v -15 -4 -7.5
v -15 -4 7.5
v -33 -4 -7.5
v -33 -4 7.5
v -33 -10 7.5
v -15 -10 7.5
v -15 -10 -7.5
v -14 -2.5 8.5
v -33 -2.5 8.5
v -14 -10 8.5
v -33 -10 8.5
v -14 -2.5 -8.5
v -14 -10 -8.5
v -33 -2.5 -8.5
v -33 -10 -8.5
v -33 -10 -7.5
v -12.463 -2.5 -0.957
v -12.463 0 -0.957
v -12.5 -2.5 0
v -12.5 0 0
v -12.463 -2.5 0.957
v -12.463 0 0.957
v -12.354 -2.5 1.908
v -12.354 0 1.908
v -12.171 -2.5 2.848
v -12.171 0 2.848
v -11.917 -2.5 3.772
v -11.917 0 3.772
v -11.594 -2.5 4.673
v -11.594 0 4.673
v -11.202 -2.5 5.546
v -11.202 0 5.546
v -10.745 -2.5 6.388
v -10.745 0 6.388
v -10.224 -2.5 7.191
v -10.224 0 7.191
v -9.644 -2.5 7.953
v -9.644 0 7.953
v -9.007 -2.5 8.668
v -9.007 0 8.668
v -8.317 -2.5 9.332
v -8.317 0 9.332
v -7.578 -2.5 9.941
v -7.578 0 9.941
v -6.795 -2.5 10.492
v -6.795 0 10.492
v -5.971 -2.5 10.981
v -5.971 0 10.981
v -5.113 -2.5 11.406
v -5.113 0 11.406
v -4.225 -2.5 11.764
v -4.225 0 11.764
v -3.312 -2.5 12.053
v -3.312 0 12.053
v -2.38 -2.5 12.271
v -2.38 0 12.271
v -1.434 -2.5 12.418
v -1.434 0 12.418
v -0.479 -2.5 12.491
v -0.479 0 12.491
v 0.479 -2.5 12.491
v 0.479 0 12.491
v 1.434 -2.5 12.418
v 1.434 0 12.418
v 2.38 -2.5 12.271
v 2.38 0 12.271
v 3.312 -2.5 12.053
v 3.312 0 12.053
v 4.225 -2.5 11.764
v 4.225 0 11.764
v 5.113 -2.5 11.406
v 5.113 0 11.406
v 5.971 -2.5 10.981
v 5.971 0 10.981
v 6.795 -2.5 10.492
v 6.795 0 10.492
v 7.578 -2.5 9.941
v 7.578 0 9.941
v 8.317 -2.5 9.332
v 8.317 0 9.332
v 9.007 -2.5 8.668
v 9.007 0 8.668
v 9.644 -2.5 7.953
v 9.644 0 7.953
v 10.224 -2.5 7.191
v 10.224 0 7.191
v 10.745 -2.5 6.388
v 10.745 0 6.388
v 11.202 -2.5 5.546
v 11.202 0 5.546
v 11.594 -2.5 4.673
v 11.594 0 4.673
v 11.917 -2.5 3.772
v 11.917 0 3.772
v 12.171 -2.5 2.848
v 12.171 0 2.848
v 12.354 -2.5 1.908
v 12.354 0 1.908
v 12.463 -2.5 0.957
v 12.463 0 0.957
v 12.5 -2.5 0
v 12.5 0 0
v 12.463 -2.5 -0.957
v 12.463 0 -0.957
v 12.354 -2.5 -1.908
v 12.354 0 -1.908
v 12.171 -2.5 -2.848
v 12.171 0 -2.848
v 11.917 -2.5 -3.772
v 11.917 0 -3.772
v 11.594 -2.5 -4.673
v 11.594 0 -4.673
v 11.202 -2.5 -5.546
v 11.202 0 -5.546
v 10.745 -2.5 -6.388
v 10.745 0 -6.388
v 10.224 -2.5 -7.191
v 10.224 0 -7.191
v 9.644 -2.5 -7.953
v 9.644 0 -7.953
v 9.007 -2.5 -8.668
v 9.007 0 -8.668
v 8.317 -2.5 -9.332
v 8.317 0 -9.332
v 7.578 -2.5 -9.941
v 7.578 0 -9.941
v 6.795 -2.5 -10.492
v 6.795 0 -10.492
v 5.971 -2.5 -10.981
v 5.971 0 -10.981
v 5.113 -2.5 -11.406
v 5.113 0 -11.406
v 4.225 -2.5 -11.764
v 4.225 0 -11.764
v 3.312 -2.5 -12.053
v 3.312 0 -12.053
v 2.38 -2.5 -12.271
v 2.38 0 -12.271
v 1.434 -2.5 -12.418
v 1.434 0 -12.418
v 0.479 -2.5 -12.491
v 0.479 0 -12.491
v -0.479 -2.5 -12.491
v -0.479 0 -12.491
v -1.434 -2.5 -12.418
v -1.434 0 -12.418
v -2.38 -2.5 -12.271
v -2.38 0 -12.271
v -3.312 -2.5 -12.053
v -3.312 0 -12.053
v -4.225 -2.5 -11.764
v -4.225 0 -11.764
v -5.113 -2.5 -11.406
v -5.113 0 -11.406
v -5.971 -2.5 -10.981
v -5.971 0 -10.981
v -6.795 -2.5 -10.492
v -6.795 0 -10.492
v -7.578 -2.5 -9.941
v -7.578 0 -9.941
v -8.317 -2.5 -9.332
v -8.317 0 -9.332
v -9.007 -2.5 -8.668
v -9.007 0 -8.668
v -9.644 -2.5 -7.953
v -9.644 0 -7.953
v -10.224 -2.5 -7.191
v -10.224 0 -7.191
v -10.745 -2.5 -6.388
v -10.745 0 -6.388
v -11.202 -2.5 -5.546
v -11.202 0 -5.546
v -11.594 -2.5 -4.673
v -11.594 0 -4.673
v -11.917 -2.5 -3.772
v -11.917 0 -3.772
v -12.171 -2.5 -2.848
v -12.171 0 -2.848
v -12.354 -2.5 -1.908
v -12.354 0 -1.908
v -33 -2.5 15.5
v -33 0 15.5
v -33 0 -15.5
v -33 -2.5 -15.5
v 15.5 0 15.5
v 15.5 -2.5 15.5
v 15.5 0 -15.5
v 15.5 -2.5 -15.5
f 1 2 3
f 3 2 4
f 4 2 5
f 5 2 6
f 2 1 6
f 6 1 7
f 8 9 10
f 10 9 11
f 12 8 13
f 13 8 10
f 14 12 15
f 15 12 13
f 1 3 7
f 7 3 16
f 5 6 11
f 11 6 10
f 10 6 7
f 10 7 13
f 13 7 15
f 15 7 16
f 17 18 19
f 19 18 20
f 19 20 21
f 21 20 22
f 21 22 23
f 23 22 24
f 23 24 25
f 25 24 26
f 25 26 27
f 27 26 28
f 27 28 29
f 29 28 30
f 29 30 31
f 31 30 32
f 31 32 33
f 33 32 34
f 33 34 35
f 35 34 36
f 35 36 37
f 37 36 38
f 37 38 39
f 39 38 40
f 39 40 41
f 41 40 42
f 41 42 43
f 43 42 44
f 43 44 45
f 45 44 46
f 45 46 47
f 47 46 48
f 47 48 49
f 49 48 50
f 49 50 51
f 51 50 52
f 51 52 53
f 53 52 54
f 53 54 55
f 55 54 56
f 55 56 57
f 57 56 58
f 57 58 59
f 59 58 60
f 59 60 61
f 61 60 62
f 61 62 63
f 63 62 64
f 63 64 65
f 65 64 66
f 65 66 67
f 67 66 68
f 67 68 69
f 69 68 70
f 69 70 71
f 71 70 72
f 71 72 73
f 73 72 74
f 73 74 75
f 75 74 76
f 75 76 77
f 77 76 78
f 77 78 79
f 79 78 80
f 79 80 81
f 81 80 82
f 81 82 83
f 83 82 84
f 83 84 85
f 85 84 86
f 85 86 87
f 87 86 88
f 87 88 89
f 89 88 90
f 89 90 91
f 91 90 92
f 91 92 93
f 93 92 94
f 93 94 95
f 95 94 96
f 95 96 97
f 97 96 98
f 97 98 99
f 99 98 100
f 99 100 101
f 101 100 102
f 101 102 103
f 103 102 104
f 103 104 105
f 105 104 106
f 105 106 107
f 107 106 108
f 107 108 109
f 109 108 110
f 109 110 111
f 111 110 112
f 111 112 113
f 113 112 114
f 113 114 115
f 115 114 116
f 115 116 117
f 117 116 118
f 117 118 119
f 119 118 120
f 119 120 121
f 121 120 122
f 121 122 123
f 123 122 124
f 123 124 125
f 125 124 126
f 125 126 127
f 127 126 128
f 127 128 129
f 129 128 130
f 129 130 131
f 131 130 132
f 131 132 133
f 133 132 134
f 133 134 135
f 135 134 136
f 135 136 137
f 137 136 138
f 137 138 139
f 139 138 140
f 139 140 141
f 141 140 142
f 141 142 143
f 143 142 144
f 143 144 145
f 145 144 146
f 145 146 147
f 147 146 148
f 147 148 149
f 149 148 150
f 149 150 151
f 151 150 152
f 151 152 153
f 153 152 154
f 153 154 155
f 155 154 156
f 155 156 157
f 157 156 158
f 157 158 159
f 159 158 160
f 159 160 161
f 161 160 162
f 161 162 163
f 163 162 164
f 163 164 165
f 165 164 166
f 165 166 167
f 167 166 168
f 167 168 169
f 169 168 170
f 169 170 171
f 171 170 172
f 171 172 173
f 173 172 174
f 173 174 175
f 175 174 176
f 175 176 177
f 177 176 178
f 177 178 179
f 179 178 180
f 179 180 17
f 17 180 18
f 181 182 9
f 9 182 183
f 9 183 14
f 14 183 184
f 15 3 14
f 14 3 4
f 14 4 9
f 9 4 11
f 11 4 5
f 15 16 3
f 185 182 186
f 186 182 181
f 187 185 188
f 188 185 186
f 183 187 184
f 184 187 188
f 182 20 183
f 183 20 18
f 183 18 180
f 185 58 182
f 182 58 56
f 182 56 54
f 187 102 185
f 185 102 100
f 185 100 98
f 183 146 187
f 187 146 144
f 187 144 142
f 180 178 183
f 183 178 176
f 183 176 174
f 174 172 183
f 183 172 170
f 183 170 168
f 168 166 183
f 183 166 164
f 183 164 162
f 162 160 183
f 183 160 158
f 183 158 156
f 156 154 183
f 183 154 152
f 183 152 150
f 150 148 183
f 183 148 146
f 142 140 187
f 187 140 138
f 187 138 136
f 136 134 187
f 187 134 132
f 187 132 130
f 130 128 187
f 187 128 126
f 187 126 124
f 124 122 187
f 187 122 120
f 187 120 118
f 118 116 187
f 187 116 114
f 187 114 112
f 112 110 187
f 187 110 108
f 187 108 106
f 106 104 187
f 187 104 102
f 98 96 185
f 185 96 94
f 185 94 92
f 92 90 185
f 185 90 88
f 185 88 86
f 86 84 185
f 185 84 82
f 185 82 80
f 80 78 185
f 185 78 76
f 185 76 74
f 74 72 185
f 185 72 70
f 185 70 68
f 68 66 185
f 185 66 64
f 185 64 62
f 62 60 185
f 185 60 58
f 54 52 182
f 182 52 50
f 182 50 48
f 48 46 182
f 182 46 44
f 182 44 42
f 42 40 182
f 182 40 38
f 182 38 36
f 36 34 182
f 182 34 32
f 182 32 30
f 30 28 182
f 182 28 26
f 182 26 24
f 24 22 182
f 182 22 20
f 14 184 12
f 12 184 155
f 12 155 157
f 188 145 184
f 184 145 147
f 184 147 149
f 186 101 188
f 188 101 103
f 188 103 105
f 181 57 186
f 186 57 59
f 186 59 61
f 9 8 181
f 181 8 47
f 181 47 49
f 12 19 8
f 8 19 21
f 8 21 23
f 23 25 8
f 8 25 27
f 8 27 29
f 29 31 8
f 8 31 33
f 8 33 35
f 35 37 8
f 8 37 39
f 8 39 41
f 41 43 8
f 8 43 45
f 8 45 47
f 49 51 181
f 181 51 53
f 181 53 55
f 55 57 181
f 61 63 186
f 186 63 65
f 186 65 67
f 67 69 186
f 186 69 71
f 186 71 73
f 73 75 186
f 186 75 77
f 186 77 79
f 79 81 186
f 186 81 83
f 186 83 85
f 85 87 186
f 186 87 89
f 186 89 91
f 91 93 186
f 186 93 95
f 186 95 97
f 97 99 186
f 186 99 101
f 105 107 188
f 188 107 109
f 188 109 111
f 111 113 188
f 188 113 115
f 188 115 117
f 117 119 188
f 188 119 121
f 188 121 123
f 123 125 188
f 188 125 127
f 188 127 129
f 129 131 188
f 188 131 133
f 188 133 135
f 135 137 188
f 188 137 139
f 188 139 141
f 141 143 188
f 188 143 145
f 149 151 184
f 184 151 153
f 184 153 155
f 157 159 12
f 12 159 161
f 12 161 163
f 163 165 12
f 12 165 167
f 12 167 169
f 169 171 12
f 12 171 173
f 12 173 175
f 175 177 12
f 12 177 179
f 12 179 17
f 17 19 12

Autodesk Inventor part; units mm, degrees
ref_plane "YZ Plane" through (0, 0, 0) normal (1, 0, 0) x (0, 1, 0)
ref_plane "XZ Plane" through (0, 0, 0) normal (0, 1, 0) x (-1, 0, 0)
ref_plane "XY Plane" through (0, 0, 0) normal (0, 0, 1) x (1, 0, 0)
sketch "Sketch1" plane through (0, 0, 0) normal (0, 1, 0) x (-1, 0, 0)
  circle A0 centre (0, 0) radius 12.5
  line L0 (0, -12.5) -> (30, -12.5) construction
  line L1 (0, 12.5) -> (30, 12.5) construction
  line L2 (30, 12.5) -> (30, -12.5) construction
  line L3 (0, -12.5) -> (16, -12.5) construction
  line L4 (0, 12.5) -> (16, 12.5) construction
  line L5 (16, 12.5) -> (16, -12.5) construction
  line L6 (30, 12.5) -> (30, 8.5) construction
  line L7 (30, -12.5) -> (30, -8.5) construction
  line L8 (0, -12.5) -> (0, -15.5) construction
  line L9 (0, 12.5) -> (0, 15.5) construction
  line L10 (30, -1.5) -> (33, -1.5) construction
  line L11 (-12.5, 0) -> (-15.5, 0) construction
  line L12 (33, -1.5) -> (33, -15.5)
  line L13 (33, -15.5) -> (0, -15.5)
  line L14 (33, -1.5) -> (33, 15.5)
  line L15 (33, 15.5) -> (0, 15.5)
  line L16 (0, 15.5) -> (-15.5, 15.5)
  line L17 (-15.5, 0) -> (-15.5, 15.5)
  line L18 (0, -15.5) -> (-15.5, -15.5)
  line L19 (-15.5, -15.5) -> (-15.5, 0)
  line L20 (0, 12.5) -> (14, 12.5) construction
  line L21 (0, -12.5) -> (14, -12.5) construction
  line L22 (14, 12.5) -> (14, -12.5) construction
  line L23 (33, 8.5) -> (33, 11.5) construction
  line L24 (33, -8.5) -> (33, -9.5) construction
  line L25 (14, -11.5) -> (14, -6.5) construction
  line L26 (14, 10.5) -> (14, 5.5) construction
  line L27 (0, -12.5) -> (15, -12.5) construction
  line L28 (0, 12.5) -> (15, 12.5) construction
  line L29 (15, 12.5) -> (15, -12.5) construction
  line L30 (14, -11.5) -> (14, -6.5) construction
  line L31 (14, -12.5) -> (14, -7.5) construction
  line L32 (14, 12.5) -> (14, 7.5) construction
  line L33 (14, 7.5) -> (30, 7.5) construction
  line L34 (14, -7.5) -> (30, -7.5) construction
  line L35 (16, -7.5) -> (16, -8.5) construction
  line L36 (16, 7.5) -> (16, 8.5) construction
  line L37 (16, 7.5) -> (16, 6.5) construction
  line L38 (16, -7.5) -> (16, -6.5) construction
  line L39 (30, -8.5) -> (14, -8.5) construction
  line L40 (30, 8.5) -> (14, 8.5) construction
  line L41 (14, -8.5) -> (33, -8.5)
  line L42 (14, 8.5) -> (33, 8.5)
  line L43 (33, 7.5) -> (15, 7.5)
  line L44 (15, 7.5) -> (15, -7.5)
  line L45 (15, -7.5) -> (33, -7.5)
  line L46 (14, -8.5) -> (14, 8.5)
  line L47 (33, -8.5) -> (33, 7.5)
  dimension "d0" = 25
  dimension "d1" = 30
  dimension "d2" = 30
  dimension "d3" = 16
  dimension "d4" = 16
  dimension "d5" = 4
  dimension "d6" = 4
  dimension "d7" = 3
  dimension "d8" = 3
  dimension "d9" = 3
  dimension "d10" = 3
  dimension "d16" = 14
  dimension "d17" = 14
  dimension "d26" = 15
  dimension "d27" = 15
  dimension "d29" = 5
  dimension "d30" = 5
  dimension "d31" = 1
  dimension "d32" = 1
  dimension "d33" = 1
  dimension "d34" = 1
extrude "Extrusion5" add sketch "Sketch1" against normal blind 2.5 contours L12 L13 L18 L19 L17 L16 L15 L14 L42 L46 L41
extrude "Extrusion6" add sketch "Sketch1" against normal blind 10 contours L12 L41 L46 L42 L14 L43 L44 L45
extrude "Extrusion7" add sketch "Sketch1" against normal blind 4 contours L12 L45 L44 L43 L14
properties part number "joystick_test_v2_3DPrint"
